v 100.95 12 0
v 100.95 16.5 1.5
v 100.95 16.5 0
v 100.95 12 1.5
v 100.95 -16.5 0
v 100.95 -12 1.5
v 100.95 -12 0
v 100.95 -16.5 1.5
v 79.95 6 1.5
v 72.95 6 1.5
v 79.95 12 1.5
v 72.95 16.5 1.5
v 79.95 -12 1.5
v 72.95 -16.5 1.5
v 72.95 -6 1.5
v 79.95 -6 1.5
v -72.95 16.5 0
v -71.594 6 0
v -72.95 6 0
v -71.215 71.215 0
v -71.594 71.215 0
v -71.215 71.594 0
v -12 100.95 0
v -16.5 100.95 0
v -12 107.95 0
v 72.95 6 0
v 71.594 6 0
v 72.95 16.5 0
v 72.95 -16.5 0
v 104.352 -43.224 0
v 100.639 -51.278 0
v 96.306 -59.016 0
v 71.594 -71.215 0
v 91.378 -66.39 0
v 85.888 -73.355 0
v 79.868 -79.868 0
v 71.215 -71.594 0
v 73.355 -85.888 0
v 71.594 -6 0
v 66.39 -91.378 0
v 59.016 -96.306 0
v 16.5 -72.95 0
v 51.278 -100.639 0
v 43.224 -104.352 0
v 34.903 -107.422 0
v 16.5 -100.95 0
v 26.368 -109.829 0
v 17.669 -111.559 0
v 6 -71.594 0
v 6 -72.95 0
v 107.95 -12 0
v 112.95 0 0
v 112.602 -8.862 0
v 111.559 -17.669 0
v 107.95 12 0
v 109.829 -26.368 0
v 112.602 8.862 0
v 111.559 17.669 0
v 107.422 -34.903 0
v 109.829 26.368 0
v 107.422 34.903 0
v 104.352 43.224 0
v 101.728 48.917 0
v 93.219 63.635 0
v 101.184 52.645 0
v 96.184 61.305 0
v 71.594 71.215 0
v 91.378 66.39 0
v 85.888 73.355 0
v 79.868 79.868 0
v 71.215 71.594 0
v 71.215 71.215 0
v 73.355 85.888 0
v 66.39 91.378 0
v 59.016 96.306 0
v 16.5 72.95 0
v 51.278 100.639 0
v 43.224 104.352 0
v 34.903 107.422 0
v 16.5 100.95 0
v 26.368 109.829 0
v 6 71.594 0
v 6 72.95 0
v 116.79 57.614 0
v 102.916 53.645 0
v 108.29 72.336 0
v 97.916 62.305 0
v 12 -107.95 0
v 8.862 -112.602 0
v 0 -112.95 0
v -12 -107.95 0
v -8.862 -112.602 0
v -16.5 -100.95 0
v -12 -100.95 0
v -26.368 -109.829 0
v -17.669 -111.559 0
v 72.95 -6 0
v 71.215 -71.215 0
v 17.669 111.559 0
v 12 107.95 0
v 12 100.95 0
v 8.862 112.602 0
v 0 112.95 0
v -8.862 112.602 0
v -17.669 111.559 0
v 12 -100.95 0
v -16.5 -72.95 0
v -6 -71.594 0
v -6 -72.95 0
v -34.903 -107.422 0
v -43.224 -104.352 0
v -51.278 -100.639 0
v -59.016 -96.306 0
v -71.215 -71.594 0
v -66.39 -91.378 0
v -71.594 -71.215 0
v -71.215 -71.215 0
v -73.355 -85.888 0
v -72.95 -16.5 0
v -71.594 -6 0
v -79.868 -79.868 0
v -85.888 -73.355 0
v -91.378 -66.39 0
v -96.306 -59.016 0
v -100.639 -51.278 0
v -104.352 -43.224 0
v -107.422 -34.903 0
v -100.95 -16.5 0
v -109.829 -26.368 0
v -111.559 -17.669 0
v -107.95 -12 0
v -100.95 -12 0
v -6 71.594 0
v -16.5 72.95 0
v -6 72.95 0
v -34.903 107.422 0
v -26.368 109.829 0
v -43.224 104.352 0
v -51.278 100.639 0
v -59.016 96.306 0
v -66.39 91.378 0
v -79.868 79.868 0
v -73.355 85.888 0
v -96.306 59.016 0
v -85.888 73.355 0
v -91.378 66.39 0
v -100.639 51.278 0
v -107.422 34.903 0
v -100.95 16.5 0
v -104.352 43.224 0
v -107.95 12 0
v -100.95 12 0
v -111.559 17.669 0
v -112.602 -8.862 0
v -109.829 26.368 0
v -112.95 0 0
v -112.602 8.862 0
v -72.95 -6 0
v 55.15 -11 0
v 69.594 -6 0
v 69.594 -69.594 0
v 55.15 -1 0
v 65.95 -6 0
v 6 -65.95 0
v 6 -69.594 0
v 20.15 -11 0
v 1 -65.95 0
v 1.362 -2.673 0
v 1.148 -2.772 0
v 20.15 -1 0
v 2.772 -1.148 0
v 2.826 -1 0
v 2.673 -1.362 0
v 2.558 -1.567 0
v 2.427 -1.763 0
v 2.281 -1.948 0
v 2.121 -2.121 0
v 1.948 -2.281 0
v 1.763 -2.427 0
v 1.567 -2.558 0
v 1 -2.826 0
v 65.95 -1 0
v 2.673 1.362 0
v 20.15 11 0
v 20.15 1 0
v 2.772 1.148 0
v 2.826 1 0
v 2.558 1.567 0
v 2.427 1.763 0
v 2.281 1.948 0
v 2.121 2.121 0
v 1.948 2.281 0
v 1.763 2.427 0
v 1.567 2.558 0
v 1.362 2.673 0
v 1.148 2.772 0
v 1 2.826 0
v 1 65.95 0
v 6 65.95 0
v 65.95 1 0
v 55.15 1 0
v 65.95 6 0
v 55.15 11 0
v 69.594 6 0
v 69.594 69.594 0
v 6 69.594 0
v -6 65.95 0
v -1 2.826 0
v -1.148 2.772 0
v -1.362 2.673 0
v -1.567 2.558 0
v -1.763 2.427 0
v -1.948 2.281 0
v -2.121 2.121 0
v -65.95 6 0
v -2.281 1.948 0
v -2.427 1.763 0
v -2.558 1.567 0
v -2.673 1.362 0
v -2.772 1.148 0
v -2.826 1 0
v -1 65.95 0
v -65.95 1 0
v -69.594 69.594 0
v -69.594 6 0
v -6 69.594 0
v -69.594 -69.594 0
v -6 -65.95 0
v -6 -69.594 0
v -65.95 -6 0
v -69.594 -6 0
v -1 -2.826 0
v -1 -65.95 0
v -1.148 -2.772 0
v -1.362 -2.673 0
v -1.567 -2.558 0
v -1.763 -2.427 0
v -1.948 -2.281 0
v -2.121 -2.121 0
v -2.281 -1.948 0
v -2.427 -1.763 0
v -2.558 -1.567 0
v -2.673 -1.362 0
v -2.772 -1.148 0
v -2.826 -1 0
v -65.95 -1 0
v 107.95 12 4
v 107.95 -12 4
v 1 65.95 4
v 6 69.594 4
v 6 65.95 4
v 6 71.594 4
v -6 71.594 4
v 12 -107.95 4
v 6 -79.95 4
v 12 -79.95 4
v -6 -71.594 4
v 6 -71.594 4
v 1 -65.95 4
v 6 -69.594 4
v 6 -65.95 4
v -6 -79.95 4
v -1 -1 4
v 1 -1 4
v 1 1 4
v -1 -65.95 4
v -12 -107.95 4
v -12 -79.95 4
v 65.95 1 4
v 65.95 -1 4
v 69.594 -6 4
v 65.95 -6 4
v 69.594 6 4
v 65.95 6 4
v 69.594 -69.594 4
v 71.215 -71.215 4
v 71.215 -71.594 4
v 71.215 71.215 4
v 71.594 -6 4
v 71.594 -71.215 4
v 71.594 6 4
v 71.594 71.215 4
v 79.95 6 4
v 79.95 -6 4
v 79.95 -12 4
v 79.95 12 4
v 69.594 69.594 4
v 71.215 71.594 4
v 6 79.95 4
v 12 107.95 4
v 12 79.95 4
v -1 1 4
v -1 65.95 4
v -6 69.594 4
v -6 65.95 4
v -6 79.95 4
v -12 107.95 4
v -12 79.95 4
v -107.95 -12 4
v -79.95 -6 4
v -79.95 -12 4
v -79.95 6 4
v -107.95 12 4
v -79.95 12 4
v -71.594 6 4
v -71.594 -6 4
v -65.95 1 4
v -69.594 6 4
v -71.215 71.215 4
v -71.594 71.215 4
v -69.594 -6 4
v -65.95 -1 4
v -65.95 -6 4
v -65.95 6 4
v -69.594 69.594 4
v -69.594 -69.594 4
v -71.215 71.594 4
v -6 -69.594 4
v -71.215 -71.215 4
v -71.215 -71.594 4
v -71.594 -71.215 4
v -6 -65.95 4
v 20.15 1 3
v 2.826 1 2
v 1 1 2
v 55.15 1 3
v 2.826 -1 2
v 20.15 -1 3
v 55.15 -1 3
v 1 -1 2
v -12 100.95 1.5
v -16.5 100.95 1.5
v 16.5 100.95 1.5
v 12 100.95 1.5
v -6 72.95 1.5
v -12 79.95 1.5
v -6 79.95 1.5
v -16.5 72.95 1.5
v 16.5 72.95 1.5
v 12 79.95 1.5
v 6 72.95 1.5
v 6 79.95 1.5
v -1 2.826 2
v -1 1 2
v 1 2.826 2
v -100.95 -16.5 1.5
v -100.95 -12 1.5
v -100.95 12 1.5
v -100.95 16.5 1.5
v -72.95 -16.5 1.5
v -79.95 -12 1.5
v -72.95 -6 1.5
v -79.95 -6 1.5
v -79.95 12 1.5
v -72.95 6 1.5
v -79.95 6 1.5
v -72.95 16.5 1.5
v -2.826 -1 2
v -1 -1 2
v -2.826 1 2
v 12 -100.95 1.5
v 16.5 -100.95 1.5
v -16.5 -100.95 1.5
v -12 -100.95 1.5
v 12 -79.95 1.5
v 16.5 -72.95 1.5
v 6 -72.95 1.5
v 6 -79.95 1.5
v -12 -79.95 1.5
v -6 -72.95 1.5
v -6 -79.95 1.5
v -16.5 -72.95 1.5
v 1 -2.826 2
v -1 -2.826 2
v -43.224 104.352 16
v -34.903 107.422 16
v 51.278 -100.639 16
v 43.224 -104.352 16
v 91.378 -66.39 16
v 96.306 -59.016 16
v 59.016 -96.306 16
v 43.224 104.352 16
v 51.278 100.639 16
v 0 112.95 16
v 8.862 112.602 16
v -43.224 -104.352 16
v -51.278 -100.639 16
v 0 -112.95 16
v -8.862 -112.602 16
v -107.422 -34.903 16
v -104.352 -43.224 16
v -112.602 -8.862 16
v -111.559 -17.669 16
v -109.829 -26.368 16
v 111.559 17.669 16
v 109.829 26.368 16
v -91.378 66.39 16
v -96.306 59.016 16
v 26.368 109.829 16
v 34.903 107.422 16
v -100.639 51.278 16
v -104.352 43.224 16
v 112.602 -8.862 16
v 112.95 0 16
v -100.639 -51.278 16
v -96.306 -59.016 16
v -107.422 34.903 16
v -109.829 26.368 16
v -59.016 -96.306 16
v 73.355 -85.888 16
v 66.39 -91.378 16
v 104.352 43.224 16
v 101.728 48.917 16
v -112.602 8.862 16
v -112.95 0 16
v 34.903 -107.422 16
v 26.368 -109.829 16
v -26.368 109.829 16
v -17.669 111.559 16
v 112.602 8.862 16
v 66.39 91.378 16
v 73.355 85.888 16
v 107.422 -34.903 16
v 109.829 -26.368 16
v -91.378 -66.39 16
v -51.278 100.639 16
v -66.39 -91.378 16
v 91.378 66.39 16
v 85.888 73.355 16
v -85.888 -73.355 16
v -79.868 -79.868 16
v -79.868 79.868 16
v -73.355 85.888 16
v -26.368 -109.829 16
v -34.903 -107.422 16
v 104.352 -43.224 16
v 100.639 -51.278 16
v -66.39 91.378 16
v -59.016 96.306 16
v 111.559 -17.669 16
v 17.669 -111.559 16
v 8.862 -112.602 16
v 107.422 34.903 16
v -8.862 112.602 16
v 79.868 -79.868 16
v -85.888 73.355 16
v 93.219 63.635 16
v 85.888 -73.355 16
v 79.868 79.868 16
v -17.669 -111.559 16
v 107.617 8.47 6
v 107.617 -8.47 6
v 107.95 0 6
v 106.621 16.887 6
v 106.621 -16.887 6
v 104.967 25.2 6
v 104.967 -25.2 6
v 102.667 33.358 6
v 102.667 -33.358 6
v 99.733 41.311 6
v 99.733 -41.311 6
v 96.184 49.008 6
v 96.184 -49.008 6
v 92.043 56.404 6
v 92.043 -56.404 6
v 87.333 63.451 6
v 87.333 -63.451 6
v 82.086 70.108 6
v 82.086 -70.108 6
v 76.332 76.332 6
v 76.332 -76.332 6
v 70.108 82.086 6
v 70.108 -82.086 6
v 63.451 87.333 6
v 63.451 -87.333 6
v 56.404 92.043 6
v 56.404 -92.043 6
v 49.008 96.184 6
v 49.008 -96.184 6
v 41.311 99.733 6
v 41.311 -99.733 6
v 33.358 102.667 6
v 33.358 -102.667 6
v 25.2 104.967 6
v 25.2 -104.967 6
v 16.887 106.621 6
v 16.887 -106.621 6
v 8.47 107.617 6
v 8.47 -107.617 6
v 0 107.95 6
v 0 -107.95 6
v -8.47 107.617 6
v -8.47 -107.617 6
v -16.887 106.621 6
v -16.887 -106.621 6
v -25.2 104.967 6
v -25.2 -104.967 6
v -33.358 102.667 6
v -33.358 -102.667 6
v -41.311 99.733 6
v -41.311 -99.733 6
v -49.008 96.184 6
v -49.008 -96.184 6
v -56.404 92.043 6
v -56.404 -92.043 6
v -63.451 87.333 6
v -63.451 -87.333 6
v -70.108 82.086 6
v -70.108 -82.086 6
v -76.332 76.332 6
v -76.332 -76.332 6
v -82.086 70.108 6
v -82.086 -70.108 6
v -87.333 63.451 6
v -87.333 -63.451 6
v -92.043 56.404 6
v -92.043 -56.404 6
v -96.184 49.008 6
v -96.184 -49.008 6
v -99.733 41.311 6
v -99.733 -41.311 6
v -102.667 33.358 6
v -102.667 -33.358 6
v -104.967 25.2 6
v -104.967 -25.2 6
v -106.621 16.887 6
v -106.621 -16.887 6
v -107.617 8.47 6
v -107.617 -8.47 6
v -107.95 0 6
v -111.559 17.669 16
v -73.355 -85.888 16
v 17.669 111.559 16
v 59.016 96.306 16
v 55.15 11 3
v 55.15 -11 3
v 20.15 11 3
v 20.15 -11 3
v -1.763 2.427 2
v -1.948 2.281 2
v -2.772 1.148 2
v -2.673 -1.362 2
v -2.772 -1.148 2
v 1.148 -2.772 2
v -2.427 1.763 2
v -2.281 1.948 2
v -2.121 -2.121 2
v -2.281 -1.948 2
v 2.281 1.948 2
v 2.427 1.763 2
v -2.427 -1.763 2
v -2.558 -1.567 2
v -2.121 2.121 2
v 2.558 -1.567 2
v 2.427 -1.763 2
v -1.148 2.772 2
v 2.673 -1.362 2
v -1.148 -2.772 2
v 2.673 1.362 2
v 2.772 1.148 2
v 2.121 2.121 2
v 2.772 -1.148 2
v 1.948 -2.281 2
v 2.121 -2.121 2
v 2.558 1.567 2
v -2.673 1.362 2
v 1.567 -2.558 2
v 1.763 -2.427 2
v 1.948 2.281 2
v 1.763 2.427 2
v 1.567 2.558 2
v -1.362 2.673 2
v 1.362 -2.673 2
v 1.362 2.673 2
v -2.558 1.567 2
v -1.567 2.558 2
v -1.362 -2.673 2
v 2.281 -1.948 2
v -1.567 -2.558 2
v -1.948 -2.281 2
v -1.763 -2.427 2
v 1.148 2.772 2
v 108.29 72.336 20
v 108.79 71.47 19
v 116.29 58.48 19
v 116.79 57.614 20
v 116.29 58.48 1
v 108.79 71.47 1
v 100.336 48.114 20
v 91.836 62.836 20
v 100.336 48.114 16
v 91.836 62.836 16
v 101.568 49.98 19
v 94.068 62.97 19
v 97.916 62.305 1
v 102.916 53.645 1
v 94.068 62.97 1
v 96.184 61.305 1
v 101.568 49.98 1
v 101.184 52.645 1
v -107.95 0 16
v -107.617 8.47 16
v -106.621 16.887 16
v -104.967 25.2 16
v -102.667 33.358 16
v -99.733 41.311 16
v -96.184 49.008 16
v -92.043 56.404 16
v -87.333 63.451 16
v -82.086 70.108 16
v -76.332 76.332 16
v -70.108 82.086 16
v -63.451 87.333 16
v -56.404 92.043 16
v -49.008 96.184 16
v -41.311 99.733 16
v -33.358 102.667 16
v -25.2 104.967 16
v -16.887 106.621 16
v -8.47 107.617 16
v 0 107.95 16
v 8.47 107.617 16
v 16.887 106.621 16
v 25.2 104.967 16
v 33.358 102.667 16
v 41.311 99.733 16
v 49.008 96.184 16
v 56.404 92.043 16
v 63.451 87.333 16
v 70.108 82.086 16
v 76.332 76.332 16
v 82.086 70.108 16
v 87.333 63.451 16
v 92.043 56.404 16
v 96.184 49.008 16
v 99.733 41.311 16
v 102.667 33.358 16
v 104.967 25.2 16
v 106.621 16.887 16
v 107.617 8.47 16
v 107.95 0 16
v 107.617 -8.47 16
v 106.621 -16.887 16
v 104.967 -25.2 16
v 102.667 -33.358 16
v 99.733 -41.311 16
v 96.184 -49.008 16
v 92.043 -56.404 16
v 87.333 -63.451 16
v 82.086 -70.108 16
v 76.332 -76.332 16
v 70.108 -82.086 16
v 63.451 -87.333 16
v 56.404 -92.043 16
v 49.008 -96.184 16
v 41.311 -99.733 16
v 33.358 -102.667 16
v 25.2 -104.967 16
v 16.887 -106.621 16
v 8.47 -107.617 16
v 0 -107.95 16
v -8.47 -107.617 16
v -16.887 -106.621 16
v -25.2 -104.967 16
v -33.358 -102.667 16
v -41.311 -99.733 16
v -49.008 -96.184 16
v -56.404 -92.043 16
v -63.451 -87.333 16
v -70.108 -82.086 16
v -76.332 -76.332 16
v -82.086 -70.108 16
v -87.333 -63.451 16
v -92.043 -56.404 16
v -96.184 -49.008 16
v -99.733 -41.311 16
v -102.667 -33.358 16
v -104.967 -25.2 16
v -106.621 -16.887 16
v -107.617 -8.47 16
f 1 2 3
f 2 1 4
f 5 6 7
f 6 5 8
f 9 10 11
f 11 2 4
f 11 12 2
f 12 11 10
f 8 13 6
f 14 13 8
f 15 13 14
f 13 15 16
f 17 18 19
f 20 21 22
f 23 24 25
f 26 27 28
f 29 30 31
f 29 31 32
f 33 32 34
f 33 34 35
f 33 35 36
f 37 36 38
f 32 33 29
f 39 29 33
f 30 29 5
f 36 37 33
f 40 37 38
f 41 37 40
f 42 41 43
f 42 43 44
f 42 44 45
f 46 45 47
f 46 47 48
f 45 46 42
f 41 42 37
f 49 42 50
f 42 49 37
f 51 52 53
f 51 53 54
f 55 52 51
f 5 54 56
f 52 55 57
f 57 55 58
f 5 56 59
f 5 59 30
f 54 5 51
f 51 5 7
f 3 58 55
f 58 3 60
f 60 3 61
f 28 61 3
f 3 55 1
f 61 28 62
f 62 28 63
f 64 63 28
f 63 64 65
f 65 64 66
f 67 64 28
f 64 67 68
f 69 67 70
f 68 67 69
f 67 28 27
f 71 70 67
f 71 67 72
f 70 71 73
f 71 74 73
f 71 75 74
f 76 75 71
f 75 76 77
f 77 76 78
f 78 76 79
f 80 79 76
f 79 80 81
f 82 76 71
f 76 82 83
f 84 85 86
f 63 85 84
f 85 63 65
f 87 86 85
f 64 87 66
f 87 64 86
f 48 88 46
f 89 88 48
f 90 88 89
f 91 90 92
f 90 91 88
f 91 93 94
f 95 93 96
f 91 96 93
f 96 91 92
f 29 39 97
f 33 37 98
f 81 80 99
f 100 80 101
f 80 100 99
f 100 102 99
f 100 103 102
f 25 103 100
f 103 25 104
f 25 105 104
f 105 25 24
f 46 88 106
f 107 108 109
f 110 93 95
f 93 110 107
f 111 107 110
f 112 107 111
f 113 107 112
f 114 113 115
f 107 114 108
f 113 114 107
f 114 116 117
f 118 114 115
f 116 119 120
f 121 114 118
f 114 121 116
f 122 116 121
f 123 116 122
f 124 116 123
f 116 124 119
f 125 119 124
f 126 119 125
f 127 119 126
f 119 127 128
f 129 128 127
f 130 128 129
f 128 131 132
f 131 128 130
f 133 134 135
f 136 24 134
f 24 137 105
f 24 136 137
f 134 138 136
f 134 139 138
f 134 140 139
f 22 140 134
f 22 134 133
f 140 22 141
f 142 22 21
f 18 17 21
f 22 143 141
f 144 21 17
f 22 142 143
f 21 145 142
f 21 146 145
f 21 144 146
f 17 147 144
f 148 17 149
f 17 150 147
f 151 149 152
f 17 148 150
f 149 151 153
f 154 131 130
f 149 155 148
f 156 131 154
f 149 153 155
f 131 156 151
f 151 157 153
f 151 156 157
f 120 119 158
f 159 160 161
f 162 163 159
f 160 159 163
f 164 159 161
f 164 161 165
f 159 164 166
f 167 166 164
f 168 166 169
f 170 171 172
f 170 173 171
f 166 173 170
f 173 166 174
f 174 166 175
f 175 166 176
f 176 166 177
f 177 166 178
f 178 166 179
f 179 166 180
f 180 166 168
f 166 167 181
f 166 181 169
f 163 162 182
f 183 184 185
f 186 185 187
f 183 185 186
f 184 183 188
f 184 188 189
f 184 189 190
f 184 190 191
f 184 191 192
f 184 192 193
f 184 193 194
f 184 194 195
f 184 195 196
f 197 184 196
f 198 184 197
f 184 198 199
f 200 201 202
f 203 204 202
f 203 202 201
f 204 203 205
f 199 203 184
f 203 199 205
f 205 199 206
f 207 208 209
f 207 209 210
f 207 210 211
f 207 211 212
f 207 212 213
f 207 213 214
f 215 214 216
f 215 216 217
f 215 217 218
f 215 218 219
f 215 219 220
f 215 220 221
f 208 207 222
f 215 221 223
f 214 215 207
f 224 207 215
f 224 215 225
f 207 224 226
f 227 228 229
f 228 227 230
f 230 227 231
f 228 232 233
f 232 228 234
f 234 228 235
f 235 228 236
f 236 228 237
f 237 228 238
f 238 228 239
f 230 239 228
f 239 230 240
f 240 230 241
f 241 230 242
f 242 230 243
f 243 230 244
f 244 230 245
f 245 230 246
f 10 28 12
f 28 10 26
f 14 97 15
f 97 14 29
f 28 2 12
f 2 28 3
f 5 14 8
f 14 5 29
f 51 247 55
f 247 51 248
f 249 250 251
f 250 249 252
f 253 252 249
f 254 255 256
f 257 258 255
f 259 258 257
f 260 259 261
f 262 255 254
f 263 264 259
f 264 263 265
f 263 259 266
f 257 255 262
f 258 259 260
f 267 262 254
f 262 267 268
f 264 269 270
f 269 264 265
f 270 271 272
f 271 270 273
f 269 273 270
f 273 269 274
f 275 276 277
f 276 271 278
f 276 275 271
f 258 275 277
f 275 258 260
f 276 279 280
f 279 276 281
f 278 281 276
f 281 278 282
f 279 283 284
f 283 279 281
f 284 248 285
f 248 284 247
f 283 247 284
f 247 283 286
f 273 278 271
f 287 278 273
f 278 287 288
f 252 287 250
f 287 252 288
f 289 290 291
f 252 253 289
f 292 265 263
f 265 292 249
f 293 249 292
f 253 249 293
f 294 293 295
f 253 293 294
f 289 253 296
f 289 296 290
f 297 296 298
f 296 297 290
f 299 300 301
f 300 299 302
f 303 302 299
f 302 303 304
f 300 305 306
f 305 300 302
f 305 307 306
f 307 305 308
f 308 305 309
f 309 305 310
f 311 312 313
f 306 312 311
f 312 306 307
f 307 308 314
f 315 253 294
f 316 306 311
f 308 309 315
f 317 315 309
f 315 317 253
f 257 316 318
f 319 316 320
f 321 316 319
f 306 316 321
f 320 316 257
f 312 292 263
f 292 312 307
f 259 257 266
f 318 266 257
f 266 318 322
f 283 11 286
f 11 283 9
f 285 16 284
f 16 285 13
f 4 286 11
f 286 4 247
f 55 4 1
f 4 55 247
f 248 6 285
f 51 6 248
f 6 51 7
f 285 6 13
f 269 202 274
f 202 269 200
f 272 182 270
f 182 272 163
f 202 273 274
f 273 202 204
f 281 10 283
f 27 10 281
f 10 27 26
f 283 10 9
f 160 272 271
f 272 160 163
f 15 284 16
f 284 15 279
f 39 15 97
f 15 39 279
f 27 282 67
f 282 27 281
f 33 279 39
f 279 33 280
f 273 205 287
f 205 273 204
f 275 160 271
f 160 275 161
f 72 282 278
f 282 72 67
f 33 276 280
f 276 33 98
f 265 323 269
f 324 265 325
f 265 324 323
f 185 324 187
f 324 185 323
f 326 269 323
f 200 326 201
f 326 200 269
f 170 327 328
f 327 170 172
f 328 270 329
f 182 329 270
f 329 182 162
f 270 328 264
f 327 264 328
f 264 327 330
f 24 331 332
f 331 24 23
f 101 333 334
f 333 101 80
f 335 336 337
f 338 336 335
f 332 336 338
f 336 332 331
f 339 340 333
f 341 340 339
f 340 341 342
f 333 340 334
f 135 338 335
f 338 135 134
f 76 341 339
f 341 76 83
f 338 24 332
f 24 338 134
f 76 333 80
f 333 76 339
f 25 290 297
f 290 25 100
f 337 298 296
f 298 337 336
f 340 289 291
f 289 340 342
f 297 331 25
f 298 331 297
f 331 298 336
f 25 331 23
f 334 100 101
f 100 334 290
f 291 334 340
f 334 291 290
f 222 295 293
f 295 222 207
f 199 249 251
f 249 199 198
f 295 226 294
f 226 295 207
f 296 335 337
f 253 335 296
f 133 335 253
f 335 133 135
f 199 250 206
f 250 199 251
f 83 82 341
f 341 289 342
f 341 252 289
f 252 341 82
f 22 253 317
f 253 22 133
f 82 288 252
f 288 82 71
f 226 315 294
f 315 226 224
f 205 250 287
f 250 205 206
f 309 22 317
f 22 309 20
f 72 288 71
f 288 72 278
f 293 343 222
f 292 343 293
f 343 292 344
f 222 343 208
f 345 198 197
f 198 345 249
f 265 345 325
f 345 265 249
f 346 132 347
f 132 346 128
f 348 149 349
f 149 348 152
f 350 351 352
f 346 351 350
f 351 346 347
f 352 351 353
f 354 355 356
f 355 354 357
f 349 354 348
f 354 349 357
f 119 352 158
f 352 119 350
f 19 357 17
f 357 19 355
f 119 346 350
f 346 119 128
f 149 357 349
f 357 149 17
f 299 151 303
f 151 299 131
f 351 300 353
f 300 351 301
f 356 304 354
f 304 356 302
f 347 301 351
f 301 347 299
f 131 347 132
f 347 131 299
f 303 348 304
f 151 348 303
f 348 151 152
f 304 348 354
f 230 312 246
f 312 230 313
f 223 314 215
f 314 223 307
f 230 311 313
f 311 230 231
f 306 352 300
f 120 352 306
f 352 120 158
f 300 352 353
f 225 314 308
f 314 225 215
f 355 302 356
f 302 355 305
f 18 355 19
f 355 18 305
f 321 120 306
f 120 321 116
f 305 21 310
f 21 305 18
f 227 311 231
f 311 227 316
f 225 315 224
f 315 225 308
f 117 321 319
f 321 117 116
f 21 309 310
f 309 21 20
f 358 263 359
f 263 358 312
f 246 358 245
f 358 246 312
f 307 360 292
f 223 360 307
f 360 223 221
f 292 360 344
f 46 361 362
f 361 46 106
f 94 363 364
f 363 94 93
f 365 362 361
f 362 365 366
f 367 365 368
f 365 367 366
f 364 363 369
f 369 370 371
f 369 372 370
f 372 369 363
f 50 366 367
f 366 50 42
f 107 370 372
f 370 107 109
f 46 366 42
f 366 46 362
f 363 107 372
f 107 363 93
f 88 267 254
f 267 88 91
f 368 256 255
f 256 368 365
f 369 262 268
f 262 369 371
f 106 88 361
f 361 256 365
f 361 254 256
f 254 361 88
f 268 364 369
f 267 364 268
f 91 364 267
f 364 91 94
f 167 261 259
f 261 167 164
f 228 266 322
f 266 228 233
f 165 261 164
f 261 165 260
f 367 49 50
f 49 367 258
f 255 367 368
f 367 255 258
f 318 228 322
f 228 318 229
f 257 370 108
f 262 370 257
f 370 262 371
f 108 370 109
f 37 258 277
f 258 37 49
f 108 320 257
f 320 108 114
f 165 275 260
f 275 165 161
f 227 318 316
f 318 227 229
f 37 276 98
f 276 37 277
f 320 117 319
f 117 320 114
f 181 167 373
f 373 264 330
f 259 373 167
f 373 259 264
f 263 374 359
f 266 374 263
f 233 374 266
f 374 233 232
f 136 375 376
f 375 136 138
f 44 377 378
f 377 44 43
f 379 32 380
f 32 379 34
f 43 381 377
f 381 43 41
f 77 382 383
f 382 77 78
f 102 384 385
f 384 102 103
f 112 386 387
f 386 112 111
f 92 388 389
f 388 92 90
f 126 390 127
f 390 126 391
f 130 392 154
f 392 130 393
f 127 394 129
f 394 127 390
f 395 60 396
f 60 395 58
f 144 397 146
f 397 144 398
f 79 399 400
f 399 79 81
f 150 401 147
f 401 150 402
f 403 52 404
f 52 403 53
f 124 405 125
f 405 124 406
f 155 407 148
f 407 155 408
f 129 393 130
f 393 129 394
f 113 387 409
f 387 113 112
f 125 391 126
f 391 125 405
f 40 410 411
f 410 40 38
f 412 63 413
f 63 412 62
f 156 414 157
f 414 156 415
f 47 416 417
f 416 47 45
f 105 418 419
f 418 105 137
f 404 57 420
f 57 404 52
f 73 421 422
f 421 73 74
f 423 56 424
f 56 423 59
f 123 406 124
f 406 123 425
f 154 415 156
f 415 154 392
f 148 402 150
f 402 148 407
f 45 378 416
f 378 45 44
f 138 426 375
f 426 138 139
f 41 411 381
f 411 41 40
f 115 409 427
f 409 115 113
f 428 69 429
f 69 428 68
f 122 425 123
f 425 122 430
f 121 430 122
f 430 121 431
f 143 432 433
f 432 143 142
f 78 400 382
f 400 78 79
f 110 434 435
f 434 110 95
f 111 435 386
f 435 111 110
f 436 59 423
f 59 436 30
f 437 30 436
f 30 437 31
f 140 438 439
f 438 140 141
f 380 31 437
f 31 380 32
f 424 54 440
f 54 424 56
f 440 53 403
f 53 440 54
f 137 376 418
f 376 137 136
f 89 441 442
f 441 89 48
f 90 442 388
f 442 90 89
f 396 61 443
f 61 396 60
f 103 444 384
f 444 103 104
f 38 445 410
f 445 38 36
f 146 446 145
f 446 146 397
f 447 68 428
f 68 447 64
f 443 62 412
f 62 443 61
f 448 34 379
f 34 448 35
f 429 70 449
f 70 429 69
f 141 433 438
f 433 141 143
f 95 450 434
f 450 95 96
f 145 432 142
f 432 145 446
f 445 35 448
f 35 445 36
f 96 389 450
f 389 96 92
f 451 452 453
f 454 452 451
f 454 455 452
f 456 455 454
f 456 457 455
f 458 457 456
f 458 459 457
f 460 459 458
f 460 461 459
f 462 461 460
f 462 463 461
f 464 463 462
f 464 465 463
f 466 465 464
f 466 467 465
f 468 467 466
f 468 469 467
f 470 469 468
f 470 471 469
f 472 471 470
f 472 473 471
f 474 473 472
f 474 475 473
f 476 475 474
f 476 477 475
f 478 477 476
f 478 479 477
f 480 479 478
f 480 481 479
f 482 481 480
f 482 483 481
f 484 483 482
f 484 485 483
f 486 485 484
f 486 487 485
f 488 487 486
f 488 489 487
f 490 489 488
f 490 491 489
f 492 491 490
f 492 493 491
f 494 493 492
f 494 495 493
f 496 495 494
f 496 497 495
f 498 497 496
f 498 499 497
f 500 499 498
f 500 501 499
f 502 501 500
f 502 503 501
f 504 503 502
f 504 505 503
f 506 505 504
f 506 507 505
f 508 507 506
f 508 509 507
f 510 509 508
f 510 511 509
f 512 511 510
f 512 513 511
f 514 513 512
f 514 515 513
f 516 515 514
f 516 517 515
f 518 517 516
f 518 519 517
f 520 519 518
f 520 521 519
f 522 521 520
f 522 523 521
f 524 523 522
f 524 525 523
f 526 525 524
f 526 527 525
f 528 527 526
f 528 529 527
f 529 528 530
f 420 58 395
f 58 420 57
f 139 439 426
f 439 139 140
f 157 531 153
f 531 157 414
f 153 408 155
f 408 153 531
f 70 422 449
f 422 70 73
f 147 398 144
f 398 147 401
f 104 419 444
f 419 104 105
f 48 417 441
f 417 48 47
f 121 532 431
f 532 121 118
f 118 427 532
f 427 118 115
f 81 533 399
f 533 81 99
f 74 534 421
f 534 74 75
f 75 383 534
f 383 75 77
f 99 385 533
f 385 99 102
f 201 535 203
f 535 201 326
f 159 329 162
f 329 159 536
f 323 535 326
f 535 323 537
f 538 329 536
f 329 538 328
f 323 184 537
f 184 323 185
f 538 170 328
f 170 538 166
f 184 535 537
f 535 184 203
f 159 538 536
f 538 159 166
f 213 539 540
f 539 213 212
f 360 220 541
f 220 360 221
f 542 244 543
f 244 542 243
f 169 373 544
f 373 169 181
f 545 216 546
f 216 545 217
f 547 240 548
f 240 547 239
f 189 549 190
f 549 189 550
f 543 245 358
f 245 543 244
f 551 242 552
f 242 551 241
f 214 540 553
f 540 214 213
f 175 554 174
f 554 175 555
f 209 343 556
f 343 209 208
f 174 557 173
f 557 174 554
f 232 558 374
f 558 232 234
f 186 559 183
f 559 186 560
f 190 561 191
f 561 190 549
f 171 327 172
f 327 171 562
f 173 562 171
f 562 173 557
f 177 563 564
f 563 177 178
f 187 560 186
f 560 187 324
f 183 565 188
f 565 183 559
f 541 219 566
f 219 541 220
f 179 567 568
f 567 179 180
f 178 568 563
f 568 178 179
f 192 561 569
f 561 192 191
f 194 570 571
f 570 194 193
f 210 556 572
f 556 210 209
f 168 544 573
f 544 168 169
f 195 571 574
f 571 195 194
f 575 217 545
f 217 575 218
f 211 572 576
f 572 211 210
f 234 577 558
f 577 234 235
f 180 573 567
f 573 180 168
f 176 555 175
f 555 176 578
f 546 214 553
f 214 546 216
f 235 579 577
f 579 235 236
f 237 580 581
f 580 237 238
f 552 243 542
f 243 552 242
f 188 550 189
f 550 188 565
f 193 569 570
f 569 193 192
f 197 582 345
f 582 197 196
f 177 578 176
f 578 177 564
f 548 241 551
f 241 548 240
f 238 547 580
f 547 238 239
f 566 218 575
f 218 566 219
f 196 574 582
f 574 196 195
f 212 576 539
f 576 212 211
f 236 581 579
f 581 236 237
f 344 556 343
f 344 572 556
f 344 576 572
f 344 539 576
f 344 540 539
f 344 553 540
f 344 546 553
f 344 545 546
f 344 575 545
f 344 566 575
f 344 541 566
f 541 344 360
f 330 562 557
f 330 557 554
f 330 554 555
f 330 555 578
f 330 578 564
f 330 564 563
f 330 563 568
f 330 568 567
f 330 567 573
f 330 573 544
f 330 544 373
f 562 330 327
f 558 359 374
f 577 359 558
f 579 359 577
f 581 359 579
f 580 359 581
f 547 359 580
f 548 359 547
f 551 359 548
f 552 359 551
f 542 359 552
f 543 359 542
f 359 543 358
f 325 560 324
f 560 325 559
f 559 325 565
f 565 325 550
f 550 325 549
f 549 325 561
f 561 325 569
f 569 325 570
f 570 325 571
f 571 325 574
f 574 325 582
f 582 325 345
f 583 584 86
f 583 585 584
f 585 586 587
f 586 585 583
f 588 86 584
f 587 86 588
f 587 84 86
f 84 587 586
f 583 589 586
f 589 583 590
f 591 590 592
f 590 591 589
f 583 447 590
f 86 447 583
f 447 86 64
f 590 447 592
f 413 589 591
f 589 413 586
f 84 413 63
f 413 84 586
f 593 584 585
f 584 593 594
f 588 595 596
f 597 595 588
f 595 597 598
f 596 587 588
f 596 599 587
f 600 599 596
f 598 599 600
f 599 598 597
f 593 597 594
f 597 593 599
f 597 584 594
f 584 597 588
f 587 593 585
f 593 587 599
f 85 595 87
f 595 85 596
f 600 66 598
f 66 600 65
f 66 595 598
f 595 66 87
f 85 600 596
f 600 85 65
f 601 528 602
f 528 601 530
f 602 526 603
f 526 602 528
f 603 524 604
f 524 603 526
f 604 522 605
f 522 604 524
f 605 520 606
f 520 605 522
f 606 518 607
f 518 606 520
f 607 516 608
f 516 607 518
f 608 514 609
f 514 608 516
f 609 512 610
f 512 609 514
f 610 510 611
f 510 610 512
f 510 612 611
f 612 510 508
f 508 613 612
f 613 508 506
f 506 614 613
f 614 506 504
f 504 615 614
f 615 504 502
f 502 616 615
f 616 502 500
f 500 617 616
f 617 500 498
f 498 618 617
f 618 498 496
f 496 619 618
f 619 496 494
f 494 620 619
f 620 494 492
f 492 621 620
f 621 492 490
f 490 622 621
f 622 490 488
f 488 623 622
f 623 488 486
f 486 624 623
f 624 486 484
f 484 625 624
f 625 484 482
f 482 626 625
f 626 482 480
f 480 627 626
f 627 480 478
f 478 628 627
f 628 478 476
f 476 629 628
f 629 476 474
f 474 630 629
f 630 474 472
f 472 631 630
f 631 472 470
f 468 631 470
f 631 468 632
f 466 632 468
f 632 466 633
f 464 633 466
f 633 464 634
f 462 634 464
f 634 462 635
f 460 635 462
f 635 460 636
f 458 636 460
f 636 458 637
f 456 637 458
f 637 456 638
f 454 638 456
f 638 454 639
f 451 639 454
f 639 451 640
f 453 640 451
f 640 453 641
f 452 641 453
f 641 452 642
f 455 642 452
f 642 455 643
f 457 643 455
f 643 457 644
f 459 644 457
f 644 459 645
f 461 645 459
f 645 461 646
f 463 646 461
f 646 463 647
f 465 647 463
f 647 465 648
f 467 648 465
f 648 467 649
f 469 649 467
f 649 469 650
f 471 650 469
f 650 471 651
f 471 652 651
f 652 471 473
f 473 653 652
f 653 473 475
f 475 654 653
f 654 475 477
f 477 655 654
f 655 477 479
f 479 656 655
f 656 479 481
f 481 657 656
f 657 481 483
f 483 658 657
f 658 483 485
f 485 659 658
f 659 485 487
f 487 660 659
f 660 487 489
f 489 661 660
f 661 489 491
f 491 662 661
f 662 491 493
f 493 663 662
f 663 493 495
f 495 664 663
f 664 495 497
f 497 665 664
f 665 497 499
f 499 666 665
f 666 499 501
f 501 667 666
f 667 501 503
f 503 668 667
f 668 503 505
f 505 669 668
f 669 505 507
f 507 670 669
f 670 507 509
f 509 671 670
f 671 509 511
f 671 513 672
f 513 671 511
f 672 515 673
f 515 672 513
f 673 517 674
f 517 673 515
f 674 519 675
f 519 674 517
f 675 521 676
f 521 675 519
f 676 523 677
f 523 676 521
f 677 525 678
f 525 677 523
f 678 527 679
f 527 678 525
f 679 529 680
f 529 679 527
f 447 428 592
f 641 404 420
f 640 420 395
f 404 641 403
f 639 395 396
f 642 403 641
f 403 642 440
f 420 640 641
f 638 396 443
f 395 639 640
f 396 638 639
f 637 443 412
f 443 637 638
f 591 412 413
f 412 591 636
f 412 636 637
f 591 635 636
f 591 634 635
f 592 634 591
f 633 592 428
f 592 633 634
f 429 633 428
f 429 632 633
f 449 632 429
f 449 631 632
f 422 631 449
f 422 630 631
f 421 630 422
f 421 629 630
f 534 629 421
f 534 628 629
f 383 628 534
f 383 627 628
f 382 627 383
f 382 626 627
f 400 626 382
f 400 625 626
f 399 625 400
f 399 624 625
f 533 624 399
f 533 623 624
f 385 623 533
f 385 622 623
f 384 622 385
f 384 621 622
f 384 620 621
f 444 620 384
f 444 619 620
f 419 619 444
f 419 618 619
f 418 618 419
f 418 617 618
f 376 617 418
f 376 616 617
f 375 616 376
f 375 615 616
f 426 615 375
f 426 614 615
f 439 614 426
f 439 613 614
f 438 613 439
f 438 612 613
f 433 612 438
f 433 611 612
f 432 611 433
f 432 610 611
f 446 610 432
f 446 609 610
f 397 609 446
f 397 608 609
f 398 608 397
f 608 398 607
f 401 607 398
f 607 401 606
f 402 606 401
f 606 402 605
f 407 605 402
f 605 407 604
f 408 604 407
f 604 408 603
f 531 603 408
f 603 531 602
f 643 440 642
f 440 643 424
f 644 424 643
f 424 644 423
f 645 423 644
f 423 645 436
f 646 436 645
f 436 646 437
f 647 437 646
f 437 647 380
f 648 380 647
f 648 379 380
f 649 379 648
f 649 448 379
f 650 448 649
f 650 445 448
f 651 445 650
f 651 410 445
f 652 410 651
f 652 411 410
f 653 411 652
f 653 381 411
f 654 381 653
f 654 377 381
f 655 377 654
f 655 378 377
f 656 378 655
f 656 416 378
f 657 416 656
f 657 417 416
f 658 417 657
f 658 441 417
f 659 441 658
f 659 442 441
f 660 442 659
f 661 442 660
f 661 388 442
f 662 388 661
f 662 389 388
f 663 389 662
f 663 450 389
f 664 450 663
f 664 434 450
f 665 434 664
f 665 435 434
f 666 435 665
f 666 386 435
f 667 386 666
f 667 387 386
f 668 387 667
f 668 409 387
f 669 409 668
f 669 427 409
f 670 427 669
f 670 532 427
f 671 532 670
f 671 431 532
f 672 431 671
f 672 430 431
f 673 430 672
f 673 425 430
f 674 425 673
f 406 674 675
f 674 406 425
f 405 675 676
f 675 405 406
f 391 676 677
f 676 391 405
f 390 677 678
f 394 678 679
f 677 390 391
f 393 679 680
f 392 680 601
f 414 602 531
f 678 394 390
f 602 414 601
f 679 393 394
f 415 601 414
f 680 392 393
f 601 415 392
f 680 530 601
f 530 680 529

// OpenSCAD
$fn=80;


// inside diameter
din = 8.5;

// wall thickness

wall = 5;


// size calculations
dout = din;

d = dout * 25.4 + 2*wall;
r = d / 2;

// thickness

h = 6;

// tolerance on inset for HX-711

tol = 1;

difference(){

    // base circle
    
    linear_extrude(h){
        circle(d = d);
     }
    
    // cutouts for load cells
    
    for (angle = [0, 90, 180, 270]){
        rotate([0, 0, angle]) {
            
            // seat for big c
            translate([r - 40, -16.5, 0])
                cube([28, 33, 1.5]);
         
            // cutout for inner piece to move
            translate([r - 33, -12, 0])
                cube([28, 24, 4.0]);
            
            // outlet for cables
            translate([r-40, 0, 0])
                cube([14, 12, 8], center = true);
            
            // connection channel for cables
            translate([5*r/8, 0, 0])
                cube([2, 1.261 * r, 8], center = true);
            
            //channels to center
            translate([0, -1, 0])
                cube([r - 10, 2, 4]);
        }
    }

    
    // cutout for HX-711
    translate([r/3, 0, 0])
    cube([34 + tol, 21 + tol, 6], center = true);
    
    // central coutout junction
    
    linear_extrude(2)
        circle(3);
    

}

// rim

rotate_extrude(){
translate([r-wall, h, 0])
square([wall,10]);
}


// RJ-11 connector

rotate([0,0,30])
    difference() {  
        translate([r-2, -17/2, h-h])
            cube([19, 17, 20]);  // Larger cube
        translate([r, -15/2, h+1-h])
            cube([20, 15, 18]); // Smaller cube (cutout)
        translate([r+2, 0, h-h])
            cube([2, 10, 5], center=true);
        }
